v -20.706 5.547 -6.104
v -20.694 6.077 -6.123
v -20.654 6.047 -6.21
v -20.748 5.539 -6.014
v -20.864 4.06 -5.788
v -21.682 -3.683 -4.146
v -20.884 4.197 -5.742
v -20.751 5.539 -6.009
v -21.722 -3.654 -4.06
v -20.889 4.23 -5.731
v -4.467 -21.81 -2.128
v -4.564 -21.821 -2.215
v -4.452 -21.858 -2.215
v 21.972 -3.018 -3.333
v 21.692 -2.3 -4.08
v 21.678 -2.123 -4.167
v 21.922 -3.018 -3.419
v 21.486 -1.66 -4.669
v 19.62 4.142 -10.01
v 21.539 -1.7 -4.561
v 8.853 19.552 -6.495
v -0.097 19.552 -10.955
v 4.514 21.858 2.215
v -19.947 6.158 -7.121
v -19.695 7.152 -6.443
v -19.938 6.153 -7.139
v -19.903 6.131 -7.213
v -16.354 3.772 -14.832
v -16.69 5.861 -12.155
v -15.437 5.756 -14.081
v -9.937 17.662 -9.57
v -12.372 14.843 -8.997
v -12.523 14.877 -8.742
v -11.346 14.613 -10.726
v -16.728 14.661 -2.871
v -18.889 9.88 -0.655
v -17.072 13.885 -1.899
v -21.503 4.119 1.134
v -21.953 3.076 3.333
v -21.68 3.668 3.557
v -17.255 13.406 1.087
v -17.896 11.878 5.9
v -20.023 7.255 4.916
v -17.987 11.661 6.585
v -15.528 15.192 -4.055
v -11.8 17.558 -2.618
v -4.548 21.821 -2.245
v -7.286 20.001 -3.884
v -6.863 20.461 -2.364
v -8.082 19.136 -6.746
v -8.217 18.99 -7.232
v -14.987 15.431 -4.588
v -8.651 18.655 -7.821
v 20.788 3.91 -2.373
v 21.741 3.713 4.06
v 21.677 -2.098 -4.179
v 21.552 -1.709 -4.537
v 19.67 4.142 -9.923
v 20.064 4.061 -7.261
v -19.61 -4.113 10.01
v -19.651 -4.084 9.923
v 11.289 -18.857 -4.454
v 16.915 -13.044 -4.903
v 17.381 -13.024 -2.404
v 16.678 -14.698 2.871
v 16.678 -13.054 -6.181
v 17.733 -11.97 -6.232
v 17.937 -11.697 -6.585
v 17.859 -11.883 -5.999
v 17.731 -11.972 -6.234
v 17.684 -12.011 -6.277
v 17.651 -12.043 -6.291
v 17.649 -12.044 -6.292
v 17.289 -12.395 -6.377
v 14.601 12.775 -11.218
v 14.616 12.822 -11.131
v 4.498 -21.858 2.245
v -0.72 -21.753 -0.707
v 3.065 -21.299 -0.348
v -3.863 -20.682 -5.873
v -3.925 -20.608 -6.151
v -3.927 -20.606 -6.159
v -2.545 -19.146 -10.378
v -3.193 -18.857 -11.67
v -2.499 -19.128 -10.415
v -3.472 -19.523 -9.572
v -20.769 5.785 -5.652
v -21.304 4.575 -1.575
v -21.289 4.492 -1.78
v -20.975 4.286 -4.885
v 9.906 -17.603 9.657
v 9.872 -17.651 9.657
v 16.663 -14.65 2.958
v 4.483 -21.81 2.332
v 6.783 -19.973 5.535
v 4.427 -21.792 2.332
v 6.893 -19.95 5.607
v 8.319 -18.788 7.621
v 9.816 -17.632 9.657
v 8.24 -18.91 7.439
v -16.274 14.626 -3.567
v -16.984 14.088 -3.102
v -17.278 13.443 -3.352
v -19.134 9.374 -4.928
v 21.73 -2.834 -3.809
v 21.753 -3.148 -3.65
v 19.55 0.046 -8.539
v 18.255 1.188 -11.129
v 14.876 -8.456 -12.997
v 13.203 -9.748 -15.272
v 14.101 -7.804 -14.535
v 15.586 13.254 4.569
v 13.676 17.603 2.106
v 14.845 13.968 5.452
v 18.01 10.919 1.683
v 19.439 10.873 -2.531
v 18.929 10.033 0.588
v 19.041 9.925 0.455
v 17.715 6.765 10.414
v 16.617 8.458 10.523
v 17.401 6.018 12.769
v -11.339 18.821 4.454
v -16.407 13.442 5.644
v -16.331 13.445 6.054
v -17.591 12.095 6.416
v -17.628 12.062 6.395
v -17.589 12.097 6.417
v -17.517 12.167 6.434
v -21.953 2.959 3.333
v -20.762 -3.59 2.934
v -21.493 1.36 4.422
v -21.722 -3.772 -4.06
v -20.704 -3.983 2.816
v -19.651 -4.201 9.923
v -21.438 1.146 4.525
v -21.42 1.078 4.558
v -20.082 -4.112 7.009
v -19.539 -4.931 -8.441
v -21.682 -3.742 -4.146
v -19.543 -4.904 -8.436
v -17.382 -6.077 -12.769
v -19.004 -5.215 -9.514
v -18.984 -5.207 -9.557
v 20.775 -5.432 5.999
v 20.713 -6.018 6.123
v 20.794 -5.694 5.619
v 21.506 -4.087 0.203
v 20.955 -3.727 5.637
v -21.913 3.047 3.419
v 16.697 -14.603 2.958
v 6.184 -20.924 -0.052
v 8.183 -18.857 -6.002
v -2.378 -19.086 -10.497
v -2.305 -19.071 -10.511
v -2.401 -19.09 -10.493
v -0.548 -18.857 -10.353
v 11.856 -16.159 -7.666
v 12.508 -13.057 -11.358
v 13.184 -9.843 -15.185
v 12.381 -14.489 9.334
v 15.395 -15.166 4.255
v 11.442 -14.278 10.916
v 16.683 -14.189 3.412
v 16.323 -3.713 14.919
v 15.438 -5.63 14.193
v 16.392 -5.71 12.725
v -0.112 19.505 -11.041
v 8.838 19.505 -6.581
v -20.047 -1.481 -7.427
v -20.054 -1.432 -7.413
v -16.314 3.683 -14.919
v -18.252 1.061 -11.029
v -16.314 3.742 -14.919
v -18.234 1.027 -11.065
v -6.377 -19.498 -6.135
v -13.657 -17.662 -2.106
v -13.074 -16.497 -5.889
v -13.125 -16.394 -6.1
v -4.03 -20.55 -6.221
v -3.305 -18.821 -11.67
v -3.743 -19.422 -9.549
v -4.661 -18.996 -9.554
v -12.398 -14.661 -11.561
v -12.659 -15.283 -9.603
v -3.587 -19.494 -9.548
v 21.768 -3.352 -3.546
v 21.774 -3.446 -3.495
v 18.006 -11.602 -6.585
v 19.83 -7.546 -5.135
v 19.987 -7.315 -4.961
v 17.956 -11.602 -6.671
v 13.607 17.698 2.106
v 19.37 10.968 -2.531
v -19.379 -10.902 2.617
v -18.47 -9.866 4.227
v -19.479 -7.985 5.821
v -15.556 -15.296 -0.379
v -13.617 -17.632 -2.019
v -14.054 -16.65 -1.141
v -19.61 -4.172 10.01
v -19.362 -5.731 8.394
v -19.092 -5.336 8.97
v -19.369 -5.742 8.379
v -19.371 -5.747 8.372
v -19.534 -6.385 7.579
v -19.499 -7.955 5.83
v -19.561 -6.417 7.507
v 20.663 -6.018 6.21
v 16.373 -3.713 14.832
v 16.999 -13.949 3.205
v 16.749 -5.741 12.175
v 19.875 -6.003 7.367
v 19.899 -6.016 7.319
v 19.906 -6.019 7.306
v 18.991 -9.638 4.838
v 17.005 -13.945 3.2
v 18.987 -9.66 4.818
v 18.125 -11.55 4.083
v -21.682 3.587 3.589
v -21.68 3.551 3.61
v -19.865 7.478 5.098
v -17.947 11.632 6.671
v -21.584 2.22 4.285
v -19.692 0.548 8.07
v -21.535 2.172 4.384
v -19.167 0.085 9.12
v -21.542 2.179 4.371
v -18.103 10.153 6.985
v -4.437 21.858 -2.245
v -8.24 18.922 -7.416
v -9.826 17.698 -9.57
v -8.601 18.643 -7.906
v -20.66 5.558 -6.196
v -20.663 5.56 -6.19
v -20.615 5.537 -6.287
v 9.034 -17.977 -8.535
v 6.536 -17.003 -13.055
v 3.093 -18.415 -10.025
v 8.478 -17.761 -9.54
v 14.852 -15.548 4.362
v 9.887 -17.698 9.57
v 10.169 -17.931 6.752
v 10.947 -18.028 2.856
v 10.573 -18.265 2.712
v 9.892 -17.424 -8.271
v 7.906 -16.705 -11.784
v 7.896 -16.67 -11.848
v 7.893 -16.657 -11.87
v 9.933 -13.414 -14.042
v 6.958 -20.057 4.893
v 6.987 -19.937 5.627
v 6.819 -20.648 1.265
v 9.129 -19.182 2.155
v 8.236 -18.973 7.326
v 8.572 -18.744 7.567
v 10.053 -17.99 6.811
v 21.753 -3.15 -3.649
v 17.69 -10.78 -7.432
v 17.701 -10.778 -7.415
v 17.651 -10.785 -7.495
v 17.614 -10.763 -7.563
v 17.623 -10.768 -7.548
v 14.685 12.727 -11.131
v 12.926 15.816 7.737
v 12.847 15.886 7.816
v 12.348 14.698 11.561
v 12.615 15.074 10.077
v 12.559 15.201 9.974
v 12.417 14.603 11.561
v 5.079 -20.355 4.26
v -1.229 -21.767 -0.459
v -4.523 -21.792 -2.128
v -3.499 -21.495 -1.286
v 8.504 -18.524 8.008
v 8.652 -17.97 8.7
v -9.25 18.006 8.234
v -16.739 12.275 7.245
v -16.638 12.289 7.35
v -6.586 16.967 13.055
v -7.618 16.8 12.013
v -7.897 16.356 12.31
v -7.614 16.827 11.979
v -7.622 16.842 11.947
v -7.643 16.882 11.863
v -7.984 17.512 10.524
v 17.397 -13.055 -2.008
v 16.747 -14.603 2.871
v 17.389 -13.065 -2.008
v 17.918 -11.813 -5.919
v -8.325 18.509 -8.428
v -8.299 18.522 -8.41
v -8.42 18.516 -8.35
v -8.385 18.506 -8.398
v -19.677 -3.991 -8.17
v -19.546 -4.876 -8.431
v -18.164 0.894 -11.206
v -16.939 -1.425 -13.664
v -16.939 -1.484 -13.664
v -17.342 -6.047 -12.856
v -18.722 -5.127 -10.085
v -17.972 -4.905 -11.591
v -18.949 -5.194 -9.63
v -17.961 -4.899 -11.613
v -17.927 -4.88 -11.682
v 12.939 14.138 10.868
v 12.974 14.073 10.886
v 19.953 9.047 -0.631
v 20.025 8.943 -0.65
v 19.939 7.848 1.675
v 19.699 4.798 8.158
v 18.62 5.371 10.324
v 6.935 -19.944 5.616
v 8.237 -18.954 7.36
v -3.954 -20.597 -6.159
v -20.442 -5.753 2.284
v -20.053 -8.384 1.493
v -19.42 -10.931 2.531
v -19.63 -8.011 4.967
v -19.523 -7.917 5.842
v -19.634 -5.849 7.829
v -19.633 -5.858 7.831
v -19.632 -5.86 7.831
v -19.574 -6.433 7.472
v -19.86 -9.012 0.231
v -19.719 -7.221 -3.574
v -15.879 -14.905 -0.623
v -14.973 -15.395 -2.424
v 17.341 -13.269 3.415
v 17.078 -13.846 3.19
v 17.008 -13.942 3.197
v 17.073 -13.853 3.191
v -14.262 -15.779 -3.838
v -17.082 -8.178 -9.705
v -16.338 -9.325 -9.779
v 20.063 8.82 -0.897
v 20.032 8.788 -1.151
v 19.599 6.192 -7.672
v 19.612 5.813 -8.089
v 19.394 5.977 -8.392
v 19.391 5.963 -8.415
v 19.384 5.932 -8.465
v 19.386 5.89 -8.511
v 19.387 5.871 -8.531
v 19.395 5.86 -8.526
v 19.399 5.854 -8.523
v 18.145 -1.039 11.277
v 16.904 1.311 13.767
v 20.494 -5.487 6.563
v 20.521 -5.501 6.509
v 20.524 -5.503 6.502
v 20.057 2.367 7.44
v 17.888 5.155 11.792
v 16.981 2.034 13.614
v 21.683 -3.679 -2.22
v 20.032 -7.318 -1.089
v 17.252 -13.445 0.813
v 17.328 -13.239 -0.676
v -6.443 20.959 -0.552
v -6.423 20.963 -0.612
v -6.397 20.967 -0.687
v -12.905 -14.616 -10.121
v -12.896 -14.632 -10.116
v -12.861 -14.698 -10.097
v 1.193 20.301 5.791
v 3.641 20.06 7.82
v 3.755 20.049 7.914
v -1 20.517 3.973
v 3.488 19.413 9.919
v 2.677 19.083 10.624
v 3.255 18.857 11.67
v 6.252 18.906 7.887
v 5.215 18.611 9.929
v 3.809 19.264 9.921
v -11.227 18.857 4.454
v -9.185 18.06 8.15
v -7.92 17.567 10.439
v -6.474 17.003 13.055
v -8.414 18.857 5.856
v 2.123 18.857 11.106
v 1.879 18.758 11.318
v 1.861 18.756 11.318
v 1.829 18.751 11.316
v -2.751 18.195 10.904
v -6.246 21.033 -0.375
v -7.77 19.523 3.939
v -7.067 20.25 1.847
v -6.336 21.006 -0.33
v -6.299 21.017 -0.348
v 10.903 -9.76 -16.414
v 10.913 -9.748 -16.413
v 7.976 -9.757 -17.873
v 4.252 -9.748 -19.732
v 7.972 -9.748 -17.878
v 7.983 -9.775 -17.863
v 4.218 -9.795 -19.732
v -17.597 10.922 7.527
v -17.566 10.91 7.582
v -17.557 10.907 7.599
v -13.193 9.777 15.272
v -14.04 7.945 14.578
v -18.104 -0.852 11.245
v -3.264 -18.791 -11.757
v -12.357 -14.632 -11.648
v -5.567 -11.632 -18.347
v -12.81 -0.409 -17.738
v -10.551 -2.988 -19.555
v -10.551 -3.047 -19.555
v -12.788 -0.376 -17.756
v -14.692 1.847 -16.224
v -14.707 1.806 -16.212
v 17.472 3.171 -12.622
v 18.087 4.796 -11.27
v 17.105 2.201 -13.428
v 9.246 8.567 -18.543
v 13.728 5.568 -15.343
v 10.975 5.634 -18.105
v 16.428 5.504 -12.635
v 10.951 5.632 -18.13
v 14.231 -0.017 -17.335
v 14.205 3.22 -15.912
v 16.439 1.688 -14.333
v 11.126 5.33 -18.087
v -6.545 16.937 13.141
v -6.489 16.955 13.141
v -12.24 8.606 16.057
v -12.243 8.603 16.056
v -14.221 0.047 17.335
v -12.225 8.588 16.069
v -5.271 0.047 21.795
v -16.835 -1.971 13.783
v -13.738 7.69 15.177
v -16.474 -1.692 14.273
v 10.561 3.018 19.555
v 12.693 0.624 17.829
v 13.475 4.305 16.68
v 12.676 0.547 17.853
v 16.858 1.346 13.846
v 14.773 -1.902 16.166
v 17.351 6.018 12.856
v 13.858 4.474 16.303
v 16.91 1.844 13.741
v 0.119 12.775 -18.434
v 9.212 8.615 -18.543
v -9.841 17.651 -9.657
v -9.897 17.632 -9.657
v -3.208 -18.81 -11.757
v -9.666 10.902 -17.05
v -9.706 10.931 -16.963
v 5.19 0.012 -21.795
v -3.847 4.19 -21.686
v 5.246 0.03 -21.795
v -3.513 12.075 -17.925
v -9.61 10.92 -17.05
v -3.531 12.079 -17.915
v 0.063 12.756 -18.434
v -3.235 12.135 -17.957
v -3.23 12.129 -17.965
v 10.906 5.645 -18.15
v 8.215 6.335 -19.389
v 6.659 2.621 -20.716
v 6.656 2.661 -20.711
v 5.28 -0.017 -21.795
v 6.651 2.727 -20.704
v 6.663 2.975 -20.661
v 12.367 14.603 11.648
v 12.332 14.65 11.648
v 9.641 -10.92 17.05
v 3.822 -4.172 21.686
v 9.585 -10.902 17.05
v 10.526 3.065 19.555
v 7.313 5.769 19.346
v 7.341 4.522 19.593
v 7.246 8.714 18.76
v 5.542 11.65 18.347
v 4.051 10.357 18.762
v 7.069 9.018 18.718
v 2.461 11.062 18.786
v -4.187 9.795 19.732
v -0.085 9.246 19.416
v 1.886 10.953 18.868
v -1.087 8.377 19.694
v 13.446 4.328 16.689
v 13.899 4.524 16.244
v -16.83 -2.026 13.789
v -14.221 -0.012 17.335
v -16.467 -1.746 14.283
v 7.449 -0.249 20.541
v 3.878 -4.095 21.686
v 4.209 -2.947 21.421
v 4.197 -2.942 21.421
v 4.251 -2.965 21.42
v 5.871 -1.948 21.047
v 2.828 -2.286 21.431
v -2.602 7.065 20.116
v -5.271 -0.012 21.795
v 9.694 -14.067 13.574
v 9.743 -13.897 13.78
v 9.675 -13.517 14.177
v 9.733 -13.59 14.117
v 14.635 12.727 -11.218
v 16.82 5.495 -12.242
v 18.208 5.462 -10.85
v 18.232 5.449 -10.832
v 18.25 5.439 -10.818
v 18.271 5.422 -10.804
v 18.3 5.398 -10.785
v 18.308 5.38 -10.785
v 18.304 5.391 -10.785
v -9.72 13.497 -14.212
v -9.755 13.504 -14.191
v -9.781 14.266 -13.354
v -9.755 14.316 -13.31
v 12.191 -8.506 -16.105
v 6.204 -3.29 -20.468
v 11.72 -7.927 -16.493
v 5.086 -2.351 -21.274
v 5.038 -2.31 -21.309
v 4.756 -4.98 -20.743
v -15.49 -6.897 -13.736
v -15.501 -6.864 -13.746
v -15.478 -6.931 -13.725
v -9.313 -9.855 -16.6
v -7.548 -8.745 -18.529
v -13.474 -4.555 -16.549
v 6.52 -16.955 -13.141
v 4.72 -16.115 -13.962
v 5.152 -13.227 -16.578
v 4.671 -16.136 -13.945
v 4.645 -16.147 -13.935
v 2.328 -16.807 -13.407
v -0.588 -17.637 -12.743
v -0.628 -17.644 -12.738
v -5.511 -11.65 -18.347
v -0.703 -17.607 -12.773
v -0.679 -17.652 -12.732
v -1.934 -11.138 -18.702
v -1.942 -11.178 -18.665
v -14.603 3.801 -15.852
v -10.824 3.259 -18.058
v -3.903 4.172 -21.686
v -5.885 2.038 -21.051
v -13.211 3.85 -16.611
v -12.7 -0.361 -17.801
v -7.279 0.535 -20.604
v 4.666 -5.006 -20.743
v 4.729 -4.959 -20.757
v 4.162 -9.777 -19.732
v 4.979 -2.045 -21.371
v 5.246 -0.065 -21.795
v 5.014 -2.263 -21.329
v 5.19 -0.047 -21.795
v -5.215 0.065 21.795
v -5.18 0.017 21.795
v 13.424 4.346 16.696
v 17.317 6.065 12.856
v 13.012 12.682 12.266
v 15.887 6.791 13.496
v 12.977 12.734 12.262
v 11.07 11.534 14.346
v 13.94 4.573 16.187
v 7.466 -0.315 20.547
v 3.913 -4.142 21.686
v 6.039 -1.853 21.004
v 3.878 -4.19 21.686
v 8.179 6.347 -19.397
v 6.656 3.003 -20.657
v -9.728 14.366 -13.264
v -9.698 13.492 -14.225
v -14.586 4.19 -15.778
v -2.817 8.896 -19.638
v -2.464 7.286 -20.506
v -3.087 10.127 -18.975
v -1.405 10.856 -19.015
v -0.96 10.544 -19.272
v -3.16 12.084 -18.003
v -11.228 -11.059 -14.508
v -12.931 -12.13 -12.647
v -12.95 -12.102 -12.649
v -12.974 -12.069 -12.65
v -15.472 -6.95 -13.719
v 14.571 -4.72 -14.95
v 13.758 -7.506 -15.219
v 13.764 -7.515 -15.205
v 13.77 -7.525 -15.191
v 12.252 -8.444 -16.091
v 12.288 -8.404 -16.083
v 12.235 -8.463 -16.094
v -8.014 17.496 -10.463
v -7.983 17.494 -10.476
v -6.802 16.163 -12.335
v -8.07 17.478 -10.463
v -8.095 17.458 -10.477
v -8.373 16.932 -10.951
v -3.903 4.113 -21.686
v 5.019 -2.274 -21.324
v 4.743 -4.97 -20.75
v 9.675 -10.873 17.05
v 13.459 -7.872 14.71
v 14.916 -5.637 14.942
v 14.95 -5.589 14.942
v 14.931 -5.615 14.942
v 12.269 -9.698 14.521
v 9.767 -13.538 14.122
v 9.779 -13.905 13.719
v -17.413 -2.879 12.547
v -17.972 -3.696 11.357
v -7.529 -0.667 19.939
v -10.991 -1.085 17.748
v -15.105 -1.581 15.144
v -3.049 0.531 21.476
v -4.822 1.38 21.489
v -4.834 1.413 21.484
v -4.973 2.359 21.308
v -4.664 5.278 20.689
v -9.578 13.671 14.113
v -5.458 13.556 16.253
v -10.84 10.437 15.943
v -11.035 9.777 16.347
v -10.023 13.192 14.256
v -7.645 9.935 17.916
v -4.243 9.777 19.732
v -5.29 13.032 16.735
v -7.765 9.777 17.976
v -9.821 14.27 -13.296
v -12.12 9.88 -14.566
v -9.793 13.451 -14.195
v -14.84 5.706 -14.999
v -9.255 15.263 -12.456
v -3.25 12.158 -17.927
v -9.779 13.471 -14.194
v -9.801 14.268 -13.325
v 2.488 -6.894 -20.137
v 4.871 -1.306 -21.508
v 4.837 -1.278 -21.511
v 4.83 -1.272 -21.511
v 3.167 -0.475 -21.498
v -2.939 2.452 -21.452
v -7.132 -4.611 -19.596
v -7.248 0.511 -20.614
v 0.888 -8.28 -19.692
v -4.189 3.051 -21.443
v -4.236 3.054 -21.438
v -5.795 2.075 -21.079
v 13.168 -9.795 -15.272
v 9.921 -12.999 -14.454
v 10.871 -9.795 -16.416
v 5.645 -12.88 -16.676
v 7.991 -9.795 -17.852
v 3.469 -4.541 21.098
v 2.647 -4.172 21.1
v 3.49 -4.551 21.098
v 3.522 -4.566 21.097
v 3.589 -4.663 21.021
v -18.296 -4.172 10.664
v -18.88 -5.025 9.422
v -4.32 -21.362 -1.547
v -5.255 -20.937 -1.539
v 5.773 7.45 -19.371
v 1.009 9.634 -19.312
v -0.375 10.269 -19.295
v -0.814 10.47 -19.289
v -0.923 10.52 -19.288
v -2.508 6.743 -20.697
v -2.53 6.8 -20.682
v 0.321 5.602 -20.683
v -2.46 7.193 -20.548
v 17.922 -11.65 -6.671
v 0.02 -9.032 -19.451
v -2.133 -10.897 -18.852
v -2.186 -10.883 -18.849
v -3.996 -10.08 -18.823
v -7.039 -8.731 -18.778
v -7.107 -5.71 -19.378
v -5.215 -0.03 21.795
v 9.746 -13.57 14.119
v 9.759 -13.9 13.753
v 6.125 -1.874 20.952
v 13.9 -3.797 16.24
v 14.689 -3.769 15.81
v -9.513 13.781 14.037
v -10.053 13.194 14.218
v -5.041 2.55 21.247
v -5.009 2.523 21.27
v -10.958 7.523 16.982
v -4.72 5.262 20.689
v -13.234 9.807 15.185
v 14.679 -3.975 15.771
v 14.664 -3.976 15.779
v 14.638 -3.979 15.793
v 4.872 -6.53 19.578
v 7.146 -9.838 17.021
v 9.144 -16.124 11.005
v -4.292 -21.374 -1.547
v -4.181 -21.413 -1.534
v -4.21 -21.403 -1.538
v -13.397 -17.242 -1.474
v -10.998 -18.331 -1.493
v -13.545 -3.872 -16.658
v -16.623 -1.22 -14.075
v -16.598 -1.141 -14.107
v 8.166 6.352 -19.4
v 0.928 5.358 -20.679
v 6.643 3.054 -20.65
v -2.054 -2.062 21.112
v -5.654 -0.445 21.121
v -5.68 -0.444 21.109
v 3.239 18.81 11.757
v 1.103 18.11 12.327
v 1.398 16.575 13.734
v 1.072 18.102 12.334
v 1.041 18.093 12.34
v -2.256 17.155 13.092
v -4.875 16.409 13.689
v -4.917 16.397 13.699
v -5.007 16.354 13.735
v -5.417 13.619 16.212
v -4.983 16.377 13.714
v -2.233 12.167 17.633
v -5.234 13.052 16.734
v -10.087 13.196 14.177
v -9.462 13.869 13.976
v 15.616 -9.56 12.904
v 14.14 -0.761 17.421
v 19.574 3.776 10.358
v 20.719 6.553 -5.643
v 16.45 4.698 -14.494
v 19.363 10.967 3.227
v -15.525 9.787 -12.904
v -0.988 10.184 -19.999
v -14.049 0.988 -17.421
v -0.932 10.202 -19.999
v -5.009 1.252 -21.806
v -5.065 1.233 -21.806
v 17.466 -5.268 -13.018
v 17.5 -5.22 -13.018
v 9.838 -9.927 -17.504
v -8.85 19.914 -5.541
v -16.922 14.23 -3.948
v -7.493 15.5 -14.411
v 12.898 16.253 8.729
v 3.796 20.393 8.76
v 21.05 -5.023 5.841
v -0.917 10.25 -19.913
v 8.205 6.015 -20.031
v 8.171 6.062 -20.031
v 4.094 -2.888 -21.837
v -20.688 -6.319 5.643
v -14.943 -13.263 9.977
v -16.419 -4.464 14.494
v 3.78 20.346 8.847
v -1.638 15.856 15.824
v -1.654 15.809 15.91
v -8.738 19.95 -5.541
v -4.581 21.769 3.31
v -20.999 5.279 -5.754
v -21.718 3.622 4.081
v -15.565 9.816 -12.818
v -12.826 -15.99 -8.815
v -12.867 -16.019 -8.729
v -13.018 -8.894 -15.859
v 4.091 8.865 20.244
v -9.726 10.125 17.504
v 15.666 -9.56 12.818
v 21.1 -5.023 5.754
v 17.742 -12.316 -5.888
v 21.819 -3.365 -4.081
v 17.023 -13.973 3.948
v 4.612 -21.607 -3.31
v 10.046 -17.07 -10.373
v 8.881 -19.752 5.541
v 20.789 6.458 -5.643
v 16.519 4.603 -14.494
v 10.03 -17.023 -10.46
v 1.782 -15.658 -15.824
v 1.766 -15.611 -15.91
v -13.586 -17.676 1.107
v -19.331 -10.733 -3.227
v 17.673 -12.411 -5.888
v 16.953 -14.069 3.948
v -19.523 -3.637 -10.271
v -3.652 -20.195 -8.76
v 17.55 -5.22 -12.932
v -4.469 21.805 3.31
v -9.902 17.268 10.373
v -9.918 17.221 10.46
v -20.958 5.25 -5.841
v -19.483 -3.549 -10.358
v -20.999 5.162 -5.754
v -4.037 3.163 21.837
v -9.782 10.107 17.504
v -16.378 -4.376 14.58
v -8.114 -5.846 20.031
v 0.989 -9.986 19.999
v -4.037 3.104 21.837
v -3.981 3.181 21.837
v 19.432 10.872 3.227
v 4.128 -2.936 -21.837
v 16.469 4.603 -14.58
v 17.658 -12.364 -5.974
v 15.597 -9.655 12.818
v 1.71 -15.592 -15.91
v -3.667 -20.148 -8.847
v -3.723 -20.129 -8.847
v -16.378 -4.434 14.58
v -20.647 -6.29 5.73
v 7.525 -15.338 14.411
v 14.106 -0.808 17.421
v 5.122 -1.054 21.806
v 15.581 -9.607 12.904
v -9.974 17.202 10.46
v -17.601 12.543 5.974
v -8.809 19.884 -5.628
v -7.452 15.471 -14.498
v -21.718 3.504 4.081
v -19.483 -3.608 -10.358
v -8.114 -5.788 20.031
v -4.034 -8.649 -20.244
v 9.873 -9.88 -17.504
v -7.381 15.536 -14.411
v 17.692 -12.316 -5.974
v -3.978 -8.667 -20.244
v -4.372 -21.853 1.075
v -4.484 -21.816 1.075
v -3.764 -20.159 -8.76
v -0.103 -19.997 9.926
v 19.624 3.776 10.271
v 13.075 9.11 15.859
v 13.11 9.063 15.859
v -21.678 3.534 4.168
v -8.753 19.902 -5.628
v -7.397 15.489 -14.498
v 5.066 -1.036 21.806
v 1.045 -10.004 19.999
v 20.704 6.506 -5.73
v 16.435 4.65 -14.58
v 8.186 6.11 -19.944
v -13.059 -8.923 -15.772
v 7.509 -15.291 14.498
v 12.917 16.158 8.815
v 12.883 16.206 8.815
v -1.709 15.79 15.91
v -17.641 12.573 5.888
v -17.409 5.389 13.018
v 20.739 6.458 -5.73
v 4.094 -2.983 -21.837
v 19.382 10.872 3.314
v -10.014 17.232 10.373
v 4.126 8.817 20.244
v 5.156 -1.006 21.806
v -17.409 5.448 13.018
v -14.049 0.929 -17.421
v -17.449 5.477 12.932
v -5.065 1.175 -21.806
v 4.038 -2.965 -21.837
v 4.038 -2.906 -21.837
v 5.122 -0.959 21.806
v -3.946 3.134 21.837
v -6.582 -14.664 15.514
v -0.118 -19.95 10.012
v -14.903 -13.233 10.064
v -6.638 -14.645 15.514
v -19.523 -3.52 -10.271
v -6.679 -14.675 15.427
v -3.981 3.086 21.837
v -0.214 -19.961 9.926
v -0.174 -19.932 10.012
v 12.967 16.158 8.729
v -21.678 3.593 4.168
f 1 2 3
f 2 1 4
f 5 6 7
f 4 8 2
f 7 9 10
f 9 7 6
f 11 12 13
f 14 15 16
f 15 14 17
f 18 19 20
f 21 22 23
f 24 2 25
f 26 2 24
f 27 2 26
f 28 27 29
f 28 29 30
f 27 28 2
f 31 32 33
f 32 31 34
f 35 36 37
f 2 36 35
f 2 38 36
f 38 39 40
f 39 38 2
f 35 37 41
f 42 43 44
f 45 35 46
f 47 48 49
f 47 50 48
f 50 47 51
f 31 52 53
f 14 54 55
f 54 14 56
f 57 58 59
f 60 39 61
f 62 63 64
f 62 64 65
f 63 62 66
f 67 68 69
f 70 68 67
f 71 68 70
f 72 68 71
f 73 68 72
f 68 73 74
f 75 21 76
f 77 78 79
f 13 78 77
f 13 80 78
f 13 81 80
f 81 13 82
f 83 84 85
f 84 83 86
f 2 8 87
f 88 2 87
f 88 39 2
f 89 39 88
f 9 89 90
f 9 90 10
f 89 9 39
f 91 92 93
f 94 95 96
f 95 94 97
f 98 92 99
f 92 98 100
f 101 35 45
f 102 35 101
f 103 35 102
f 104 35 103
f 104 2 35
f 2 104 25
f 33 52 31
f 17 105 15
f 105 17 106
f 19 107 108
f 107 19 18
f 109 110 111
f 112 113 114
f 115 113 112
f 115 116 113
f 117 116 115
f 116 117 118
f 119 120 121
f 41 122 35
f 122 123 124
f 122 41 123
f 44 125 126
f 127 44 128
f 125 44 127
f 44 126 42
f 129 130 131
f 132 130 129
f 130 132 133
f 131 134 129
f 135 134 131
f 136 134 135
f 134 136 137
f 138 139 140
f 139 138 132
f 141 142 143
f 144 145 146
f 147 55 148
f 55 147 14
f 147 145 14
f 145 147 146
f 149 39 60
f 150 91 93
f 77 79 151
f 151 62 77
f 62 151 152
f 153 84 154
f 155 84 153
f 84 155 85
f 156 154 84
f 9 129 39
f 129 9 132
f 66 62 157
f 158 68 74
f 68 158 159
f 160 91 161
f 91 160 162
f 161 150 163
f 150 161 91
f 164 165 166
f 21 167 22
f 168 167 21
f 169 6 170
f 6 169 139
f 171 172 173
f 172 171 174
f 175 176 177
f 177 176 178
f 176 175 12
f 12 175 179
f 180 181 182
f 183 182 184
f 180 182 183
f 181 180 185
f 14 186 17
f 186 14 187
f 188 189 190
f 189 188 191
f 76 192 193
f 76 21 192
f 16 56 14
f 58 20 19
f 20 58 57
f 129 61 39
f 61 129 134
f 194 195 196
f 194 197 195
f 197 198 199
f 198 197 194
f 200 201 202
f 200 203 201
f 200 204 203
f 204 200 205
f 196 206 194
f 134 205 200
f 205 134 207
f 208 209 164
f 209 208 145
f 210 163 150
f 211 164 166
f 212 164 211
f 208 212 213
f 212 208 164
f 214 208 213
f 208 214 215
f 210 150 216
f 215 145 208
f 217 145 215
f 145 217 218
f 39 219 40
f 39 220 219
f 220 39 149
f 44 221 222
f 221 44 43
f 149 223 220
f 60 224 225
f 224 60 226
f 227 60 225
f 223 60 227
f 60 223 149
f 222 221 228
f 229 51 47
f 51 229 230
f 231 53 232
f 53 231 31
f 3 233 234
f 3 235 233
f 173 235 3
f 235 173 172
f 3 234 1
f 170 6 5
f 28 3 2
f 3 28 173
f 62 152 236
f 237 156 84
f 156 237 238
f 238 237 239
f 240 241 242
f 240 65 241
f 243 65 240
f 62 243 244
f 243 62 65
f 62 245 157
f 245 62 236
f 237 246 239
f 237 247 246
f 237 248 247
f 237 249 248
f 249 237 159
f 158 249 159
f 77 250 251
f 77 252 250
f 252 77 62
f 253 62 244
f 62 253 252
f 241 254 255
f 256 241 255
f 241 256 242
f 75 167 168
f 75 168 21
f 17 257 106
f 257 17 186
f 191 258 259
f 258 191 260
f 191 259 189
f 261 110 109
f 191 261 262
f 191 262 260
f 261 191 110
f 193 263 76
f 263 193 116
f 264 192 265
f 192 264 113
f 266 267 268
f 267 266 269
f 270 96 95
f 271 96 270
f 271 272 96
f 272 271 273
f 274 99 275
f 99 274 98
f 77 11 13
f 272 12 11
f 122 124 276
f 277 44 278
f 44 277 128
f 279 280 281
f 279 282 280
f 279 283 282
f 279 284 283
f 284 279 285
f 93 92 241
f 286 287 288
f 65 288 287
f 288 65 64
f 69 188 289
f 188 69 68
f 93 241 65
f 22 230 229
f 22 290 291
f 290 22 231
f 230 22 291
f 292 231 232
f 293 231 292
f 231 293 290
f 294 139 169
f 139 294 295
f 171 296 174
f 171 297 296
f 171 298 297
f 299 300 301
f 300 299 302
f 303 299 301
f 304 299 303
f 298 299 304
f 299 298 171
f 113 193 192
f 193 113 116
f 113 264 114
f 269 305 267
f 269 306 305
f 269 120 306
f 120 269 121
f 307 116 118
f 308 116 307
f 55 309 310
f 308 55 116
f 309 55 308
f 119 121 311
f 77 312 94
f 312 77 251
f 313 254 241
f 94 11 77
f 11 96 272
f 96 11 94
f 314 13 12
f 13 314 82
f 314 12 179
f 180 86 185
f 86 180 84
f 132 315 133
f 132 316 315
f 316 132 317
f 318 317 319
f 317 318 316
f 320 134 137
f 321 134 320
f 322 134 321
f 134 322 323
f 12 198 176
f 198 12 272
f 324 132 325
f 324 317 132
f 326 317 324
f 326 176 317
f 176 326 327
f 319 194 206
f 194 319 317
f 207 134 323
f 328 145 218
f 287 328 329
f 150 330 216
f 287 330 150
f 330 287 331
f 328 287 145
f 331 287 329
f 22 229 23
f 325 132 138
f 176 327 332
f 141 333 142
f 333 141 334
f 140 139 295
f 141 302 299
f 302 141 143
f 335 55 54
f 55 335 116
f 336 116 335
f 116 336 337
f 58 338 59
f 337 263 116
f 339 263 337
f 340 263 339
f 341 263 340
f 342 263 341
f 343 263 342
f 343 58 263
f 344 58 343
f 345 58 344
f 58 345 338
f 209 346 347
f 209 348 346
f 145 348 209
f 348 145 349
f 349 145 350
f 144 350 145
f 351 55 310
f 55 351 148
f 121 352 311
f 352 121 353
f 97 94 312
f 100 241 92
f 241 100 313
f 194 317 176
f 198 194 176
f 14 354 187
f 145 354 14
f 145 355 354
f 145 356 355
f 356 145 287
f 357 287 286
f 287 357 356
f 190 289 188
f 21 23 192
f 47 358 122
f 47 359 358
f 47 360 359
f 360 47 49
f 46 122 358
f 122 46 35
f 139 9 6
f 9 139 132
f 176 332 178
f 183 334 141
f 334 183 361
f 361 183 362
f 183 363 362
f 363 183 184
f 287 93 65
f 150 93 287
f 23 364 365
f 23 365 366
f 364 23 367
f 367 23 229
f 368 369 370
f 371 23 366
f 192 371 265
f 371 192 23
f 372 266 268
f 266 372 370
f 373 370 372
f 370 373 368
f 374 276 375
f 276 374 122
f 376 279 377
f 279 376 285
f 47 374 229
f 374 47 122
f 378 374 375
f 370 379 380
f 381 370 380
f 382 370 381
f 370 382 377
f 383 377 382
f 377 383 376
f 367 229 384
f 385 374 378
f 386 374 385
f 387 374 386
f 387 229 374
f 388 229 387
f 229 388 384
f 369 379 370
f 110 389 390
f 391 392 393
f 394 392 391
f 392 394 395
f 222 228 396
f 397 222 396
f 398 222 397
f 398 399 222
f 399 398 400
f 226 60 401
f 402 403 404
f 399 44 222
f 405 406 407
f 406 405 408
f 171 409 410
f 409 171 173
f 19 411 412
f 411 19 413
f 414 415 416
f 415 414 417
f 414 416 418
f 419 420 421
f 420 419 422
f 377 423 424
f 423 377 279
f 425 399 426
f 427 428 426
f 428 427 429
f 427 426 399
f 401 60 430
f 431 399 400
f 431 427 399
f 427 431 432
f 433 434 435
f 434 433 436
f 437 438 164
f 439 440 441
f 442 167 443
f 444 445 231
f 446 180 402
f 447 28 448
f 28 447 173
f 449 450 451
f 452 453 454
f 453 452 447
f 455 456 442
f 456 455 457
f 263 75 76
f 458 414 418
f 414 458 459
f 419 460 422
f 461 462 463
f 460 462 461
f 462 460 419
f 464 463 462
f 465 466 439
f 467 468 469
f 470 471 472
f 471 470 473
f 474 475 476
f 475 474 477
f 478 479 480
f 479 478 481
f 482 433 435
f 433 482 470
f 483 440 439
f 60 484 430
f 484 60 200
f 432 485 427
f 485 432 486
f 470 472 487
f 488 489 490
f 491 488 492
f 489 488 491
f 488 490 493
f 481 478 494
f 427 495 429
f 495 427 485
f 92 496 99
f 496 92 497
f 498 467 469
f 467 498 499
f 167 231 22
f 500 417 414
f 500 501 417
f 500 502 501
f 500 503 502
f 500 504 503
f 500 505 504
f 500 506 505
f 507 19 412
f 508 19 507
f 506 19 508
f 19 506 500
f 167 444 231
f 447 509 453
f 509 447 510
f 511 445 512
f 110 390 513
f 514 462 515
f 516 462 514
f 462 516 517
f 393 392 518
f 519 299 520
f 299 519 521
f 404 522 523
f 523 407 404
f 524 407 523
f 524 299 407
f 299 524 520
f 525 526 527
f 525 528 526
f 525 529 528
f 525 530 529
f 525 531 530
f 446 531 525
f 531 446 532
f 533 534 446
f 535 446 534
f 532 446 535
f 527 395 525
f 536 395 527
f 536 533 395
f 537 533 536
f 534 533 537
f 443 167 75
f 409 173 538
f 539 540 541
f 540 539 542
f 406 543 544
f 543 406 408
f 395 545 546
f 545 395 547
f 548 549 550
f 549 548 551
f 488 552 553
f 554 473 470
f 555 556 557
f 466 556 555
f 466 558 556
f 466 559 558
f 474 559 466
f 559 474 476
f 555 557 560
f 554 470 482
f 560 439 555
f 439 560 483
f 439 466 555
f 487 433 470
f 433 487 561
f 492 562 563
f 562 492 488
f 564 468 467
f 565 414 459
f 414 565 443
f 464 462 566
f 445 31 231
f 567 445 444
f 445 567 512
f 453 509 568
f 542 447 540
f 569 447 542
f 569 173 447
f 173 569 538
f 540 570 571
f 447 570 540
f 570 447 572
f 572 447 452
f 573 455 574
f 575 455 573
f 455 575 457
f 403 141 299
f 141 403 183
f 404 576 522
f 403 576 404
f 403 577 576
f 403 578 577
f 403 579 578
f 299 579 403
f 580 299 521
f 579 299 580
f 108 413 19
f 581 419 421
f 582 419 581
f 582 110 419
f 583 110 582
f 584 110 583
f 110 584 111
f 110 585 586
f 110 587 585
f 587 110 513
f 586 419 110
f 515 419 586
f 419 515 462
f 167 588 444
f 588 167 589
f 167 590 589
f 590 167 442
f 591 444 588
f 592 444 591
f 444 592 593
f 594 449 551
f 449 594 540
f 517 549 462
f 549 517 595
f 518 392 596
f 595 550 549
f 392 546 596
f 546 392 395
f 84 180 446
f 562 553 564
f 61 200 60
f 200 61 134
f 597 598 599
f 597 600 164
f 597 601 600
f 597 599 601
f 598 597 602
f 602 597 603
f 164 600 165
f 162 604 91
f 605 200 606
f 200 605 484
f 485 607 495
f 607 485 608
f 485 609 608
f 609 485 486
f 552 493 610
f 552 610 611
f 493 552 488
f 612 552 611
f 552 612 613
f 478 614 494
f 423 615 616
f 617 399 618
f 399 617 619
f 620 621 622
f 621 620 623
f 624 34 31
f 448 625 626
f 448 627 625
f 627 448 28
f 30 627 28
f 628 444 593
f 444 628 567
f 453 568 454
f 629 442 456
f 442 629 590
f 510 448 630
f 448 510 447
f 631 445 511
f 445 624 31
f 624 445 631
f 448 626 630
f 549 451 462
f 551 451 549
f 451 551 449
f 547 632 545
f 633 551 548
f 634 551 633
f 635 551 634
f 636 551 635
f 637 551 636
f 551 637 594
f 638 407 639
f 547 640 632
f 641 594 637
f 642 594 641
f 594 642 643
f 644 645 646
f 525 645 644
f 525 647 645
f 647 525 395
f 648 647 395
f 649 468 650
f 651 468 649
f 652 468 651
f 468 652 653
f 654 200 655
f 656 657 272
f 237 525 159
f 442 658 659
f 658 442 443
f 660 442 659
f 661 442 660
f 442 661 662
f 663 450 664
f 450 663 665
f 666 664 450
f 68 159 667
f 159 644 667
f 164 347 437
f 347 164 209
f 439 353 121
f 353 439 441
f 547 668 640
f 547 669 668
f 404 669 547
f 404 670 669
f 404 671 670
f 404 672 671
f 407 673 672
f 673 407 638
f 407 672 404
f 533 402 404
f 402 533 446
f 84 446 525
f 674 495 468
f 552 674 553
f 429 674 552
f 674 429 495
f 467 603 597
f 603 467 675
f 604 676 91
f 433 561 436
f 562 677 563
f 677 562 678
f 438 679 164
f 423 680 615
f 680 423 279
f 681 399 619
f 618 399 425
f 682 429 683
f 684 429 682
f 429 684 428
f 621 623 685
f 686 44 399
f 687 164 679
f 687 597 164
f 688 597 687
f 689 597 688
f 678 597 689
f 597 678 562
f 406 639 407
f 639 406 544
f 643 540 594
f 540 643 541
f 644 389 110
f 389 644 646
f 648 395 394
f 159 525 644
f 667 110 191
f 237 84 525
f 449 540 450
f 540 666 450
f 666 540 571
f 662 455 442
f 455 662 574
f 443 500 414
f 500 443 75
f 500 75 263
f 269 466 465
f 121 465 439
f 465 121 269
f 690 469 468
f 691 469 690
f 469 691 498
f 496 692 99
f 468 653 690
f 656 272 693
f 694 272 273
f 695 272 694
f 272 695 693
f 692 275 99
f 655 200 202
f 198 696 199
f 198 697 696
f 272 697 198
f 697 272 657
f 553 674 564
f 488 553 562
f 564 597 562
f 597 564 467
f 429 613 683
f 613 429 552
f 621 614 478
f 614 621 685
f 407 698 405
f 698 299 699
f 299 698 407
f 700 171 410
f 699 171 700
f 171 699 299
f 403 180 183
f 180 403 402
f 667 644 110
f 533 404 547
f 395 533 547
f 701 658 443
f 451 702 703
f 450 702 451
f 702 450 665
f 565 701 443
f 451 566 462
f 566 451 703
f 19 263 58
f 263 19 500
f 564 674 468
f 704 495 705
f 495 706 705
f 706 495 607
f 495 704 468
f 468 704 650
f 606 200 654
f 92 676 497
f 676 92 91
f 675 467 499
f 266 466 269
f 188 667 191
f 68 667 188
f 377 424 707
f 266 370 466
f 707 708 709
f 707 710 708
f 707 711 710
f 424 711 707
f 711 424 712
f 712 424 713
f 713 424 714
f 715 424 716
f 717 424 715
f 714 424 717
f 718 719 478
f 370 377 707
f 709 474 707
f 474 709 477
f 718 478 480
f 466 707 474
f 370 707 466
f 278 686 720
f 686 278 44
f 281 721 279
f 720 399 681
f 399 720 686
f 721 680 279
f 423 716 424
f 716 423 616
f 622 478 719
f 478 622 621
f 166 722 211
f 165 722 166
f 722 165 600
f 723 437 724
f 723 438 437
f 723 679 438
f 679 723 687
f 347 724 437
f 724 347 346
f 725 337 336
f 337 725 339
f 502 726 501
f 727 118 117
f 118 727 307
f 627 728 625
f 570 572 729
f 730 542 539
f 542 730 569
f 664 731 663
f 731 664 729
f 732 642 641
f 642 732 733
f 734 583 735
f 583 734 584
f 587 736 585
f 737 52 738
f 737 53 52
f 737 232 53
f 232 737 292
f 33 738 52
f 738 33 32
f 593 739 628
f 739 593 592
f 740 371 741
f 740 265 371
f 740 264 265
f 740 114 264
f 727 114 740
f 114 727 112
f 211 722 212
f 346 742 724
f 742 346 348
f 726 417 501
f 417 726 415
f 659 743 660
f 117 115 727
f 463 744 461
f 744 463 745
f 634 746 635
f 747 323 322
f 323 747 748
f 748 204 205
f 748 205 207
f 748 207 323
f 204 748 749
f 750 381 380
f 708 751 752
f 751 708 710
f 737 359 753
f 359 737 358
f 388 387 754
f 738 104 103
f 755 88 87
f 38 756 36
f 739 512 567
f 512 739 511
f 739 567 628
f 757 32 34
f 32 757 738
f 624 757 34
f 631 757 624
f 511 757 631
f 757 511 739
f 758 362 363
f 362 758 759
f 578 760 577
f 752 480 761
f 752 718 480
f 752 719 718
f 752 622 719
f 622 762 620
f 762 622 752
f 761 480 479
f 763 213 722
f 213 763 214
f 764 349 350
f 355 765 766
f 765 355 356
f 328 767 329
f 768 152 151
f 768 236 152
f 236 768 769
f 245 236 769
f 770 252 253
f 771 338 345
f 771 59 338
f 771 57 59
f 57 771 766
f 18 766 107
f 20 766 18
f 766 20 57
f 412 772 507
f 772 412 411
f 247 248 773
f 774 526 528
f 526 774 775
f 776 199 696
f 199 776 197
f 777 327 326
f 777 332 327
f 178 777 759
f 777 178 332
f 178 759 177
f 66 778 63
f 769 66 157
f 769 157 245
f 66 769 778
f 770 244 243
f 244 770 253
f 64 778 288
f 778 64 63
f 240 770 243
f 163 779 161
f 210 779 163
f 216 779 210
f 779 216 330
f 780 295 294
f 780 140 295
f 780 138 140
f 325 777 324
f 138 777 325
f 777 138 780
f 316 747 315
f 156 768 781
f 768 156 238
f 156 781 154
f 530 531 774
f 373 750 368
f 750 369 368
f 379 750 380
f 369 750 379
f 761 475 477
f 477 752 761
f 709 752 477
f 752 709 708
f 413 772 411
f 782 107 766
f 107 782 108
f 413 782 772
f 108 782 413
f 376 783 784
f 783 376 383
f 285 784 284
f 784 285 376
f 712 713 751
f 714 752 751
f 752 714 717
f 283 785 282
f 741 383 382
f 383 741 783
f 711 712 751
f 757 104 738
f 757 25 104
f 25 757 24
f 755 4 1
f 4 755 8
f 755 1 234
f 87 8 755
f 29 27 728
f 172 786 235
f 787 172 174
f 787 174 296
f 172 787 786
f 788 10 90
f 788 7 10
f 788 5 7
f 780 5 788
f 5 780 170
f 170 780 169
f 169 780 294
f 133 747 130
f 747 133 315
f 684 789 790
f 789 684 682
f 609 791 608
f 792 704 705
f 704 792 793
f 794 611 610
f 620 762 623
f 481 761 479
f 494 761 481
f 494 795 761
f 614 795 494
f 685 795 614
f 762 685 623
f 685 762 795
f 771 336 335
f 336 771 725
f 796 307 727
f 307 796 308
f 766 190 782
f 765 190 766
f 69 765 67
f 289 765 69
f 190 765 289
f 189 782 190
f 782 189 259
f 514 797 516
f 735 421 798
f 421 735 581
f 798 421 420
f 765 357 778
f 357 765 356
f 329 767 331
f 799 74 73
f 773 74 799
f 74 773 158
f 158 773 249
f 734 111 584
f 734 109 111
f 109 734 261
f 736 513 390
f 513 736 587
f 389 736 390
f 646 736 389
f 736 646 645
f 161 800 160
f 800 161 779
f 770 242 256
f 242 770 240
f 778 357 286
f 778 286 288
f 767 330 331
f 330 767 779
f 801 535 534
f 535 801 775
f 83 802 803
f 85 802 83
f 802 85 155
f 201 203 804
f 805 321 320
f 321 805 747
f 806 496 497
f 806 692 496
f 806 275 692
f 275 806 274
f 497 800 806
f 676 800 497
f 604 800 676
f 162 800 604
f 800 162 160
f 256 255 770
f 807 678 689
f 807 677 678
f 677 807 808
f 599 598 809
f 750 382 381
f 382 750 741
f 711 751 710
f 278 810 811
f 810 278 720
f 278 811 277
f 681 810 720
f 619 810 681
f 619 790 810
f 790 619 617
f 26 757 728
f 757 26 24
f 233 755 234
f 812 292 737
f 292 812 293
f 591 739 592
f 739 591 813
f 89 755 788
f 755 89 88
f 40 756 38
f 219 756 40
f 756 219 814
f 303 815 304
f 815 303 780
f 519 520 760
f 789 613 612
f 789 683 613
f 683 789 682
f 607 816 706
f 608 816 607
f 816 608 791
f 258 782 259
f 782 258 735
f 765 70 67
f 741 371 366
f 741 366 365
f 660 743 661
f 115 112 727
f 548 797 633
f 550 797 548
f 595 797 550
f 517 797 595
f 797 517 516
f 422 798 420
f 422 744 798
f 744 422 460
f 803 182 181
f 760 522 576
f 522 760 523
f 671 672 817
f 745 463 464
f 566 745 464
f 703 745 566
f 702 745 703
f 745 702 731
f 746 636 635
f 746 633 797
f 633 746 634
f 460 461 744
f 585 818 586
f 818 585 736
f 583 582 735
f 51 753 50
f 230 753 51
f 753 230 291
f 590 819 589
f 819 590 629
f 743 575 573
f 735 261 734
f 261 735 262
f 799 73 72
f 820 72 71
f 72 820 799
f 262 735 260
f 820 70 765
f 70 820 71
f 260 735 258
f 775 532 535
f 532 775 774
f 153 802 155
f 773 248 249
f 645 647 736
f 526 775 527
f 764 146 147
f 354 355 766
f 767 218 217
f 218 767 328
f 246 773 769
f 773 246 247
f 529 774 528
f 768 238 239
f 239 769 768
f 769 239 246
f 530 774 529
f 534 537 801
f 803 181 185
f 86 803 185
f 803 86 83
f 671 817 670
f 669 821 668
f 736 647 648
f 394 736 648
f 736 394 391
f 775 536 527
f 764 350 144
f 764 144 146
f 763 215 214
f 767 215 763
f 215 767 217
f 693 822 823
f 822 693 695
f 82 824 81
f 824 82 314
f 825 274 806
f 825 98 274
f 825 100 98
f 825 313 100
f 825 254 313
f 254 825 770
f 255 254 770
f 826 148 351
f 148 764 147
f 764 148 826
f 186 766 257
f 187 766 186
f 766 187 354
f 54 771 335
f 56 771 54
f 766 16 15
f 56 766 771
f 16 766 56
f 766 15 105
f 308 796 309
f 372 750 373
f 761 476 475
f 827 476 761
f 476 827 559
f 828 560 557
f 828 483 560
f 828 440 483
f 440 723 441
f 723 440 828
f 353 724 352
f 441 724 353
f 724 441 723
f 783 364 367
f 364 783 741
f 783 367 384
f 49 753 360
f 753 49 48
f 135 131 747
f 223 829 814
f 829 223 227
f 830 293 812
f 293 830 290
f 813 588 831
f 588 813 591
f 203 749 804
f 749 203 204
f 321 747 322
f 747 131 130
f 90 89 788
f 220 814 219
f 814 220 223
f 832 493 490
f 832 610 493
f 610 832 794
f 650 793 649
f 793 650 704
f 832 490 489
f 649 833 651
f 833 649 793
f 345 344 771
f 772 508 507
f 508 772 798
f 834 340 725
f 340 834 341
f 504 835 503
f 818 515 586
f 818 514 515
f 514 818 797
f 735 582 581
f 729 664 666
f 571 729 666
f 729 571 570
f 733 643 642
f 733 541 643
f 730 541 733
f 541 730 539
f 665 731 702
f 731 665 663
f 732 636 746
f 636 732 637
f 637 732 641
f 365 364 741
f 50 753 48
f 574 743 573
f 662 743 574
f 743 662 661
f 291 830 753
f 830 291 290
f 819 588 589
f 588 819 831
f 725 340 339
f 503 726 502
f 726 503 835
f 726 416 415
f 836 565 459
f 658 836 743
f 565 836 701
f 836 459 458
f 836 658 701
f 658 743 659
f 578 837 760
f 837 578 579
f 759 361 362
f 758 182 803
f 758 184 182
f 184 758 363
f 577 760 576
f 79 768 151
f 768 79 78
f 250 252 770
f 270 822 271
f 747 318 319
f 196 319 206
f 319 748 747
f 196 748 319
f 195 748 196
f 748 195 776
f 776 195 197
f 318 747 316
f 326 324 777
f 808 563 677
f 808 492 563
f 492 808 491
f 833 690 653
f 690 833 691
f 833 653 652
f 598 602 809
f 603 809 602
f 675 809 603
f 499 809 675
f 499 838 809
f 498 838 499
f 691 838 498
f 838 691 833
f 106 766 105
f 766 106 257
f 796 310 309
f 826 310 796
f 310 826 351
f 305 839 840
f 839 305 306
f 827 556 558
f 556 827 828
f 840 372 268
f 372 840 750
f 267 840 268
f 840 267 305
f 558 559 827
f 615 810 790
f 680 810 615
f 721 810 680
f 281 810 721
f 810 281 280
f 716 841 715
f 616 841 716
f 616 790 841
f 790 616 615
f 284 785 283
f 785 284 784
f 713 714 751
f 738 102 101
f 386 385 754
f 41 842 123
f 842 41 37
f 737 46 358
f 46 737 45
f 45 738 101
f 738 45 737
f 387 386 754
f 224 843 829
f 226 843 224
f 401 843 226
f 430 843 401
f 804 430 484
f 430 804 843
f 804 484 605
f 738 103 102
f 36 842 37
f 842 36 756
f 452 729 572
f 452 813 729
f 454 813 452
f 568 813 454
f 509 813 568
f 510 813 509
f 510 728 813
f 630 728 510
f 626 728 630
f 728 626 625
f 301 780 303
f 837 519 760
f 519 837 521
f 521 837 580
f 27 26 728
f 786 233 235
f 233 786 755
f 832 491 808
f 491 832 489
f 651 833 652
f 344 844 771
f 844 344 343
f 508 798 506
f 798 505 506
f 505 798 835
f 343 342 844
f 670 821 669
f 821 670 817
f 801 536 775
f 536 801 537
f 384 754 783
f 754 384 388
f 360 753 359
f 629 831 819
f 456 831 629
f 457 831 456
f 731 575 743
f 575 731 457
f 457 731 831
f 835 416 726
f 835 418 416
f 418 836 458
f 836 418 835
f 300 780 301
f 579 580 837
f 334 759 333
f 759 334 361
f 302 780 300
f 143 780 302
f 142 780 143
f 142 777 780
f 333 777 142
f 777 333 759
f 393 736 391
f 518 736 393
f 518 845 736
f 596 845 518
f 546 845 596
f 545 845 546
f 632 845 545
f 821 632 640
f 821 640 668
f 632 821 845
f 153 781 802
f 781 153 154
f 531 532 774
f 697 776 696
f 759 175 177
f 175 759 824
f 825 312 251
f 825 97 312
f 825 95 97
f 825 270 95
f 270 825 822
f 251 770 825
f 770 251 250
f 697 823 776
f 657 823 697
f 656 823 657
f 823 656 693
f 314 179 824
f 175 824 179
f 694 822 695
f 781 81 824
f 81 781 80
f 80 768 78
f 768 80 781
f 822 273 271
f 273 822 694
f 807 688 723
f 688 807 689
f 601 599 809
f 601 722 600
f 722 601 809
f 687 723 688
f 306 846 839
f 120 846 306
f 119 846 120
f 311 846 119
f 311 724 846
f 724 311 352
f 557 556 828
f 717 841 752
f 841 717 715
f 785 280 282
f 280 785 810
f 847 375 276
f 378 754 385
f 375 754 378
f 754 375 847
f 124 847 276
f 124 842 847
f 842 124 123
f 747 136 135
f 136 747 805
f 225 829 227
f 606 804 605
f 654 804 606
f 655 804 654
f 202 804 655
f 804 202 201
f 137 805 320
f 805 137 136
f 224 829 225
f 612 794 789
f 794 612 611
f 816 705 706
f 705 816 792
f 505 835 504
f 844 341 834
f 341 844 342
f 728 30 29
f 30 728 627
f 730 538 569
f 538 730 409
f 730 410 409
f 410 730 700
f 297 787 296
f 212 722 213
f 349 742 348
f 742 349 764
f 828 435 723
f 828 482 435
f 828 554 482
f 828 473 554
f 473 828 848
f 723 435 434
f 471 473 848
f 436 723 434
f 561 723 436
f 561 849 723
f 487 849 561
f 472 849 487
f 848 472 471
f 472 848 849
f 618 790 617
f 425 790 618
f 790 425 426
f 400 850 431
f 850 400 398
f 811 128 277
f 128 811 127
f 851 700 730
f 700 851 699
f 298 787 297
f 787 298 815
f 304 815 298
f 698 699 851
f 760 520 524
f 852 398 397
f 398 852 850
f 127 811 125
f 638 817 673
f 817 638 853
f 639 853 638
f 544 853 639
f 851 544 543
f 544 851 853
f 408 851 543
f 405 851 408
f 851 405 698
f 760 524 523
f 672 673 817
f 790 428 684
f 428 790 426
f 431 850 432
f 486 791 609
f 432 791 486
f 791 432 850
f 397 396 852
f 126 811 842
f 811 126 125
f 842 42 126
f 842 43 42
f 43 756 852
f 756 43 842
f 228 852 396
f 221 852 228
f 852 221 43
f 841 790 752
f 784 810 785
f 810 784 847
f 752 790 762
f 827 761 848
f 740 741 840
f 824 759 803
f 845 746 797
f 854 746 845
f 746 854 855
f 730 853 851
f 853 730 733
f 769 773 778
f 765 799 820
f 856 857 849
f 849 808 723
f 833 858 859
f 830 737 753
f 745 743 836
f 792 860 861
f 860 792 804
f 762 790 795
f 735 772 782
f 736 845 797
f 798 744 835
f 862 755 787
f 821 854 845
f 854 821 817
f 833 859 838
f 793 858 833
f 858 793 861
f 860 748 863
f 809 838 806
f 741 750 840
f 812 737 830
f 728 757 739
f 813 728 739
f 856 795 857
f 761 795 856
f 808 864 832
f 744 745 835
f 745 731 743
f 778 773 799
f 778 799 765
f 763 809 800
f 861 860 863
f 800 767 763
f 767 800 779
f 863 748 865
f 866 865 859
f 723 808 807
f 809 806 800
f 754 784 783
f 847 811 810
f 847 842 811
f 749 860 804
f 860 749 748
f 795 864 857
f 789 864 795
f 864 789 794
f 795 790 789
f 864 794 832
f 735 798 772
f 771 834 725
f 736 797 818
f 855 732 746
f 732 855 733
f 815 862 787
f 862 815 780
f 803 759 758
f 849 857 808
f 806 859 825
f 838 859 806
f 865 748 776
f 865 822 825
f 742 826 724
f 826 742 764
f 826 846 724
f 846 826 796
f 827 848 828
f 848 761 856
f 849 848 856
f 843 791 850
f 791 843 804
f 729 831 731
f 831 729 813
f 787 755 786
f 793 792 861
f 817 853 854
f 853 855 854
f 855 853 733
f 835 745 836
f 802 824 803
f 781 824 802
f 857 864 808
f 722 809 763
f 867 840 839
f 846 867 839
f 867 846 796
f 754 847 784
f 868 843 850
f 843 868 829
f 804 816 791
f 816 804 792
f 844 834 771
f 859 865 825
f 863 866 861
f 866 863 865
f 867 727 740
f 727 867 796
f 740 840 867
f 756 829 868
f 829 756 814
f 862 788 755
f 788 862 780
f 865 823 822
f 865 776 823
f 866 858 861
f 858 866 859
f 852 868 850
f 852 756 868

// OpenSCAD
// Auto-generated OpenSCAD file

    inner_points = 10*[[1.6419395506328012, 0.4602929851836759, -1.4493631210210838], [-2.163745004596259, 0.35631876074276486, 0.40811536788318015], [1.7450099255654523, -0.5220418917143825, -1.2931751335159007], [-2.060674629663608, -0.6260161161552936, 0.5643033553883631], [2.0688511081140133, 0.6458077645062935, -0.5643033553883631], [-1.736833447115047, 0.5418335400653824, 1.2931751335159007], [2.171921483046664, -0.33652711239176486, -0.40811536788318015], [-1.633763072182396, -0.4405013368326759, 1.4493631210210838], [-0.5024600091989292, 0.12040914704172646, -2.1719262545002076], [-1.40086026515404, 0.0958641621658513, -1.7334350643752123], [-0.39938963426627816, -0.861925729856332, -2.0157382669950246], [-1.297789890221389, -0.8864707147322072, -1.5772470768700293], [1.3059663686717942, 0.9062623630832071, 1.5772470768700293], [0.4075661127166832, 0.8817173782073319, 2.0157382669950246], [1.4090367436044453, -0.07607251381485132, 1.7334350643752123], [0.5106364876493342, -0.10061749869072649, 2.1719262545002076], [-0.876874224833509, 1.9854845996807855, -0.5540957539242841], [0.45813914580270193, -2.151207730652403, -0.3309640117084364], [-0.4402611101524089, -2.175752715528278, 0.10752717841655868], [-0.4499626673522969, 2.170999379003403, 0.3309640117084364], [0.885050703283914, -1.9656929513297854, 0.5540957539242841], [-0.01334955267119673, -1.9902379362056606, 0.9925869440492793], [-1.7560539639518336, 1.2513865774351467, 0.5887852848583058], [1.7642304424022388, -1.2315949290841466, -0.5887852848583058], [-1.4862122191449578, -1.3203995186184145, 0.9976907447813188], [0.40781917944265544, -0.29357376199763685, -2.1750805768244144], [-1.94422322614943, -0.3578333666560299, -1.0270957373097849], [1.9523997045998354, 0.3776250150070299, 1.0270957373097849], [-0.3996427009922504, 0.31336541034863685, 2.1750805768244144], [-0.7412023044825446, 1.5441143118102854, -1.4411049979648374], [-0.368290184743018, -2.0100066611413343, -0.8760115505366415], [0.37646666319342303, 2.0297983094923344, 0.8760115505366415], [0.7493787829329497, -1.5243226634592852, 1.4411049979648374], [0.8155102200870809, 0.6014940546947446, -1.9944106598492888], [-2.091774079186868, 0.5220648151297087, -0.57542336107002], [0.9822815899613055, -0.987957164460758, -1.741693187431459], [-1.9250027093126436, -1.0673864040257937, -0.3227058886521901], [1.9331791877630489, 1.0871780523767938, 0.3227058886521901], [-0.9741051115109005, 1.007748812811758, 1.741693187431459], [2.0999505576372735, -0.5022731667787088, 0.57542336107002], [-0.8073337416366758, -0.5817024063437447, 1.9944106598492888], [-0.09476896855450376, 1.0154769637341081, -1.9912563375250816], [-1.5484111181914781, 0.97576234395159, -1.2817626881354474], [0.17507277625237197, -1.5563091323194531, -1.5823508776020687], [-1.2785693733846024, -1.5960237521019711, -0.8728572282124344], [1.2867458518350077, 1.6158154004529712, 0.8728572282124344], [-0.16689629780196688, 1.5761007806704532, 1.5823508776020687], [1.5565875966418834, -0.9559706956005901, 1.2817626881354474], [0.10294544700490885, -0.9956853153831081, 1.9912563375250816], [-1.6840830385424423, 1.4171326318220903, -0.3947534440948942], [1.001502106798092, -1.6975102018305217, -1.0373033387738637], [-1.3505402987939932, -1.761769806488915, 0.11068150074076566], [-0.9933256283476869, 1.7173018501815218, 1.0373033387738637], [1.6922595169928476, -1.3973409834710901, 0.3947534440948942], [-0.659782888599238, -1.4616005881294833, 1.5427382836095238]];

    outer_points = 10*[[-1.4180906408512854, 0.0017142914815234112, 1.7248431734608507], [0.42024133545743264, -0.9747819964248692, -1.9645012743489607], [-1.3152829421925452, 0.9747819964248692, 1.5185186264656285], [0.5230490341161731, -0.0017142914815234112, -2.1708258213441827], [-0.5230490341161731, 0.0017142914815234112, 2.1708258213441827], [1.3152829421925452, -0.9747819964248692, -1.5185186264656285], [-0.42024133545743264, 0.9747819964248692, 1.9645012743489607], [1.4180906408512854, -0.0017142914815234112, -1.7248431734608507], [-2.16411804954985, -0.3712741006106156, -0.40597609206469265], [-1.73014673792946, -0.6017936043327301, -1.276912174159233], [-2.06131035089111, 0.6017936043327301, -0.6123006390599148], [-1.6273390392707197, 0.3712741006106156, -1.4832367211544553], [1.6273390392707197, -0.3712741006106156, 1.4832367211544553], [2.06131035089111, -0.6017936043327301, 0.6123006390599148], [1.73014673792946, 0.6017936043327301, 1.276912174159233], [2.16411804954985, 0.3712741006106156, 0.40597609206469265], [-0.4482853476217299, -2.176250224285918, -0.22145696173963106], [-0.44675625911338257, 2.176250224285918, -0.22452568614370114], [-0.012784947492992194, 1.9457307205638033, -1.0954617682382417], [0.44675625911338257, -2.176250224285918, 0.22452568614370114], [0.4482853476217299, 2.176250224285918, 0.22145696173963106], [0.8822566592421203, 1.9457307205638033, -0.6494791203549095], [0.6504844530956028, -1.6907758622164506, -1.3054558351499], [-0.6504844530956028, 1.6907758622164506, 1.3054558351499], [0.9196385024893416, 0.8567484626800828, -1.845620511896816], [-2.187221299238754, 0.30175394790712673, 0.33327994325880184], [-1.0510696552741998, -0.30175394790712673, -1.9468603216933742], [1.0510696552741998, 0.30175394790712673, 1.9468603216933742], [2.187221299238754, -0.30175394790712673, -0.33327994325880184], [-1.3576055479151603, -1.7602960149199394, -0.21055425340455092], [-0.985643799862681, 1.7602960149199394, -0.9570434771466892], [0.985643799862681, -1.7602960149199394, 0.9570434771466892], [1.3576055479151603, 1.7602960149199394, 0.21055425340455092], [-1.9569781816005838, -0.4142399178844547, 0.9923253824578624], [-0.5526175169122562, -1.1602167020687328, -1.8260829832574081], [-1.790631830865585, 1.1602167020687328, 0.658485252706168], [-0.38627116617725754, 0.4142399178844547, -2.1599231130091026], [0.38627116617725754, -0.4142399178844547, 2.1599231130091026], [1.790631830865585, -1.1602167020687328, -0.658485252706168], [0.5526175169122562, 1.1602167020687328, 1.8260829832574081], [1.9569781816005838, 0.4142399178844547, -0.9923253824578624], [-1.9338749319116801, -1.0872679664021971, 0.2530693471343679], [-1.2316945995675164, -1.4602563584943362, -1.1561348357232673], [-1.6647208825179411, 1.4602563584943362, -0.28709532961254836], [-0.9625405501737774, 1.0872679664021971, -1.6962995124701836], [0.9625405501737774, -1.0872679664021971, 1.6962995124701836], [1.6647208825179411, -1.4602563584943362, 0.28709532961254836], [1.2316945995675164, 1.4602563584943362, 1.1561348357232673], [1.9338749319116801, 1.0872679664021971, -0.2530693471343679], [-0.322374399274086, -1.8762105678603143, -1.1670375440583476], [-1.1258333417686428, 1.8762105678603143, 0.4454224613904398], [0.010318302195911455, 1.2727026720460608, -1.8347178035617362], [1.1258333417686428, -1.8762105678603143, -0.4454224613904398], [0.322374399274086, 1.8762105678603143, 1.1670375440583476], [1.4585260432386402, 1.2727026720460608, -1.1131027208938282]];

    // Convex hull for inner set (I)
    module inner_hull() {
        hull() {
            for (p = inner_points) {
                translate(p) sphere(r=0.1);
            }
        }
    }

    // Convex hull for outer set (O) minus inner hull (O \ I)
    module outer_minus_inner() {
        difference() {
            hull() {
                for (p = outer_points) {
                    translate(p) sphere(r=0.1);
                }
            }
            inner_hull(); // Subtract inner hull
        }
    }

    // Convex hull for outer set (O) minus all translated inner hulls
    module outer_minus_AllTranslationInner() {
        difference() {
            hull() {
                for (p = outer_points) {
                    translate(p) sphere(r=0.1);
                }
            }
            hull() {
                translate([0,0,50]) inner_hull();
                translate([0,0,-50]) inner_hull();
            }; // Subtract translated inner hulls
        }
    }

    // Difference between outer_minus_inner and outer_minus_AllTranslationInner
    module outer_minus_inner_diff() {
        difference() {
            // Outer minus inner
            difference() {
                hull() {
                    for (p = outer_points) {
                        translate(p) sphere(r=0.1);
                    }
                }
                inner_hull();
            }

            // Subtract Outer minus AllTranslationInner
            difference() {
                hull() {
                    for (p = outer_points) {
                        translate(p) sphere(r=0.1);
                    }
                }
                hull() {
                    translate([0,0,50]) inner_hull();
                    translate([0,0,-50]) inner_hull();
                };
            }
        }
    }

    // Rendering all with colors applied
    color([1, 0, 0, 0.5]) inner_hull(); // Transparent red
    color([0, 1, 0, 1]) outer_minus_AllTranslationInner(); // Opaque green
    color([1, 1, 0, 1]) outer_minus_inner_diff(); // Opaque yellow
    
